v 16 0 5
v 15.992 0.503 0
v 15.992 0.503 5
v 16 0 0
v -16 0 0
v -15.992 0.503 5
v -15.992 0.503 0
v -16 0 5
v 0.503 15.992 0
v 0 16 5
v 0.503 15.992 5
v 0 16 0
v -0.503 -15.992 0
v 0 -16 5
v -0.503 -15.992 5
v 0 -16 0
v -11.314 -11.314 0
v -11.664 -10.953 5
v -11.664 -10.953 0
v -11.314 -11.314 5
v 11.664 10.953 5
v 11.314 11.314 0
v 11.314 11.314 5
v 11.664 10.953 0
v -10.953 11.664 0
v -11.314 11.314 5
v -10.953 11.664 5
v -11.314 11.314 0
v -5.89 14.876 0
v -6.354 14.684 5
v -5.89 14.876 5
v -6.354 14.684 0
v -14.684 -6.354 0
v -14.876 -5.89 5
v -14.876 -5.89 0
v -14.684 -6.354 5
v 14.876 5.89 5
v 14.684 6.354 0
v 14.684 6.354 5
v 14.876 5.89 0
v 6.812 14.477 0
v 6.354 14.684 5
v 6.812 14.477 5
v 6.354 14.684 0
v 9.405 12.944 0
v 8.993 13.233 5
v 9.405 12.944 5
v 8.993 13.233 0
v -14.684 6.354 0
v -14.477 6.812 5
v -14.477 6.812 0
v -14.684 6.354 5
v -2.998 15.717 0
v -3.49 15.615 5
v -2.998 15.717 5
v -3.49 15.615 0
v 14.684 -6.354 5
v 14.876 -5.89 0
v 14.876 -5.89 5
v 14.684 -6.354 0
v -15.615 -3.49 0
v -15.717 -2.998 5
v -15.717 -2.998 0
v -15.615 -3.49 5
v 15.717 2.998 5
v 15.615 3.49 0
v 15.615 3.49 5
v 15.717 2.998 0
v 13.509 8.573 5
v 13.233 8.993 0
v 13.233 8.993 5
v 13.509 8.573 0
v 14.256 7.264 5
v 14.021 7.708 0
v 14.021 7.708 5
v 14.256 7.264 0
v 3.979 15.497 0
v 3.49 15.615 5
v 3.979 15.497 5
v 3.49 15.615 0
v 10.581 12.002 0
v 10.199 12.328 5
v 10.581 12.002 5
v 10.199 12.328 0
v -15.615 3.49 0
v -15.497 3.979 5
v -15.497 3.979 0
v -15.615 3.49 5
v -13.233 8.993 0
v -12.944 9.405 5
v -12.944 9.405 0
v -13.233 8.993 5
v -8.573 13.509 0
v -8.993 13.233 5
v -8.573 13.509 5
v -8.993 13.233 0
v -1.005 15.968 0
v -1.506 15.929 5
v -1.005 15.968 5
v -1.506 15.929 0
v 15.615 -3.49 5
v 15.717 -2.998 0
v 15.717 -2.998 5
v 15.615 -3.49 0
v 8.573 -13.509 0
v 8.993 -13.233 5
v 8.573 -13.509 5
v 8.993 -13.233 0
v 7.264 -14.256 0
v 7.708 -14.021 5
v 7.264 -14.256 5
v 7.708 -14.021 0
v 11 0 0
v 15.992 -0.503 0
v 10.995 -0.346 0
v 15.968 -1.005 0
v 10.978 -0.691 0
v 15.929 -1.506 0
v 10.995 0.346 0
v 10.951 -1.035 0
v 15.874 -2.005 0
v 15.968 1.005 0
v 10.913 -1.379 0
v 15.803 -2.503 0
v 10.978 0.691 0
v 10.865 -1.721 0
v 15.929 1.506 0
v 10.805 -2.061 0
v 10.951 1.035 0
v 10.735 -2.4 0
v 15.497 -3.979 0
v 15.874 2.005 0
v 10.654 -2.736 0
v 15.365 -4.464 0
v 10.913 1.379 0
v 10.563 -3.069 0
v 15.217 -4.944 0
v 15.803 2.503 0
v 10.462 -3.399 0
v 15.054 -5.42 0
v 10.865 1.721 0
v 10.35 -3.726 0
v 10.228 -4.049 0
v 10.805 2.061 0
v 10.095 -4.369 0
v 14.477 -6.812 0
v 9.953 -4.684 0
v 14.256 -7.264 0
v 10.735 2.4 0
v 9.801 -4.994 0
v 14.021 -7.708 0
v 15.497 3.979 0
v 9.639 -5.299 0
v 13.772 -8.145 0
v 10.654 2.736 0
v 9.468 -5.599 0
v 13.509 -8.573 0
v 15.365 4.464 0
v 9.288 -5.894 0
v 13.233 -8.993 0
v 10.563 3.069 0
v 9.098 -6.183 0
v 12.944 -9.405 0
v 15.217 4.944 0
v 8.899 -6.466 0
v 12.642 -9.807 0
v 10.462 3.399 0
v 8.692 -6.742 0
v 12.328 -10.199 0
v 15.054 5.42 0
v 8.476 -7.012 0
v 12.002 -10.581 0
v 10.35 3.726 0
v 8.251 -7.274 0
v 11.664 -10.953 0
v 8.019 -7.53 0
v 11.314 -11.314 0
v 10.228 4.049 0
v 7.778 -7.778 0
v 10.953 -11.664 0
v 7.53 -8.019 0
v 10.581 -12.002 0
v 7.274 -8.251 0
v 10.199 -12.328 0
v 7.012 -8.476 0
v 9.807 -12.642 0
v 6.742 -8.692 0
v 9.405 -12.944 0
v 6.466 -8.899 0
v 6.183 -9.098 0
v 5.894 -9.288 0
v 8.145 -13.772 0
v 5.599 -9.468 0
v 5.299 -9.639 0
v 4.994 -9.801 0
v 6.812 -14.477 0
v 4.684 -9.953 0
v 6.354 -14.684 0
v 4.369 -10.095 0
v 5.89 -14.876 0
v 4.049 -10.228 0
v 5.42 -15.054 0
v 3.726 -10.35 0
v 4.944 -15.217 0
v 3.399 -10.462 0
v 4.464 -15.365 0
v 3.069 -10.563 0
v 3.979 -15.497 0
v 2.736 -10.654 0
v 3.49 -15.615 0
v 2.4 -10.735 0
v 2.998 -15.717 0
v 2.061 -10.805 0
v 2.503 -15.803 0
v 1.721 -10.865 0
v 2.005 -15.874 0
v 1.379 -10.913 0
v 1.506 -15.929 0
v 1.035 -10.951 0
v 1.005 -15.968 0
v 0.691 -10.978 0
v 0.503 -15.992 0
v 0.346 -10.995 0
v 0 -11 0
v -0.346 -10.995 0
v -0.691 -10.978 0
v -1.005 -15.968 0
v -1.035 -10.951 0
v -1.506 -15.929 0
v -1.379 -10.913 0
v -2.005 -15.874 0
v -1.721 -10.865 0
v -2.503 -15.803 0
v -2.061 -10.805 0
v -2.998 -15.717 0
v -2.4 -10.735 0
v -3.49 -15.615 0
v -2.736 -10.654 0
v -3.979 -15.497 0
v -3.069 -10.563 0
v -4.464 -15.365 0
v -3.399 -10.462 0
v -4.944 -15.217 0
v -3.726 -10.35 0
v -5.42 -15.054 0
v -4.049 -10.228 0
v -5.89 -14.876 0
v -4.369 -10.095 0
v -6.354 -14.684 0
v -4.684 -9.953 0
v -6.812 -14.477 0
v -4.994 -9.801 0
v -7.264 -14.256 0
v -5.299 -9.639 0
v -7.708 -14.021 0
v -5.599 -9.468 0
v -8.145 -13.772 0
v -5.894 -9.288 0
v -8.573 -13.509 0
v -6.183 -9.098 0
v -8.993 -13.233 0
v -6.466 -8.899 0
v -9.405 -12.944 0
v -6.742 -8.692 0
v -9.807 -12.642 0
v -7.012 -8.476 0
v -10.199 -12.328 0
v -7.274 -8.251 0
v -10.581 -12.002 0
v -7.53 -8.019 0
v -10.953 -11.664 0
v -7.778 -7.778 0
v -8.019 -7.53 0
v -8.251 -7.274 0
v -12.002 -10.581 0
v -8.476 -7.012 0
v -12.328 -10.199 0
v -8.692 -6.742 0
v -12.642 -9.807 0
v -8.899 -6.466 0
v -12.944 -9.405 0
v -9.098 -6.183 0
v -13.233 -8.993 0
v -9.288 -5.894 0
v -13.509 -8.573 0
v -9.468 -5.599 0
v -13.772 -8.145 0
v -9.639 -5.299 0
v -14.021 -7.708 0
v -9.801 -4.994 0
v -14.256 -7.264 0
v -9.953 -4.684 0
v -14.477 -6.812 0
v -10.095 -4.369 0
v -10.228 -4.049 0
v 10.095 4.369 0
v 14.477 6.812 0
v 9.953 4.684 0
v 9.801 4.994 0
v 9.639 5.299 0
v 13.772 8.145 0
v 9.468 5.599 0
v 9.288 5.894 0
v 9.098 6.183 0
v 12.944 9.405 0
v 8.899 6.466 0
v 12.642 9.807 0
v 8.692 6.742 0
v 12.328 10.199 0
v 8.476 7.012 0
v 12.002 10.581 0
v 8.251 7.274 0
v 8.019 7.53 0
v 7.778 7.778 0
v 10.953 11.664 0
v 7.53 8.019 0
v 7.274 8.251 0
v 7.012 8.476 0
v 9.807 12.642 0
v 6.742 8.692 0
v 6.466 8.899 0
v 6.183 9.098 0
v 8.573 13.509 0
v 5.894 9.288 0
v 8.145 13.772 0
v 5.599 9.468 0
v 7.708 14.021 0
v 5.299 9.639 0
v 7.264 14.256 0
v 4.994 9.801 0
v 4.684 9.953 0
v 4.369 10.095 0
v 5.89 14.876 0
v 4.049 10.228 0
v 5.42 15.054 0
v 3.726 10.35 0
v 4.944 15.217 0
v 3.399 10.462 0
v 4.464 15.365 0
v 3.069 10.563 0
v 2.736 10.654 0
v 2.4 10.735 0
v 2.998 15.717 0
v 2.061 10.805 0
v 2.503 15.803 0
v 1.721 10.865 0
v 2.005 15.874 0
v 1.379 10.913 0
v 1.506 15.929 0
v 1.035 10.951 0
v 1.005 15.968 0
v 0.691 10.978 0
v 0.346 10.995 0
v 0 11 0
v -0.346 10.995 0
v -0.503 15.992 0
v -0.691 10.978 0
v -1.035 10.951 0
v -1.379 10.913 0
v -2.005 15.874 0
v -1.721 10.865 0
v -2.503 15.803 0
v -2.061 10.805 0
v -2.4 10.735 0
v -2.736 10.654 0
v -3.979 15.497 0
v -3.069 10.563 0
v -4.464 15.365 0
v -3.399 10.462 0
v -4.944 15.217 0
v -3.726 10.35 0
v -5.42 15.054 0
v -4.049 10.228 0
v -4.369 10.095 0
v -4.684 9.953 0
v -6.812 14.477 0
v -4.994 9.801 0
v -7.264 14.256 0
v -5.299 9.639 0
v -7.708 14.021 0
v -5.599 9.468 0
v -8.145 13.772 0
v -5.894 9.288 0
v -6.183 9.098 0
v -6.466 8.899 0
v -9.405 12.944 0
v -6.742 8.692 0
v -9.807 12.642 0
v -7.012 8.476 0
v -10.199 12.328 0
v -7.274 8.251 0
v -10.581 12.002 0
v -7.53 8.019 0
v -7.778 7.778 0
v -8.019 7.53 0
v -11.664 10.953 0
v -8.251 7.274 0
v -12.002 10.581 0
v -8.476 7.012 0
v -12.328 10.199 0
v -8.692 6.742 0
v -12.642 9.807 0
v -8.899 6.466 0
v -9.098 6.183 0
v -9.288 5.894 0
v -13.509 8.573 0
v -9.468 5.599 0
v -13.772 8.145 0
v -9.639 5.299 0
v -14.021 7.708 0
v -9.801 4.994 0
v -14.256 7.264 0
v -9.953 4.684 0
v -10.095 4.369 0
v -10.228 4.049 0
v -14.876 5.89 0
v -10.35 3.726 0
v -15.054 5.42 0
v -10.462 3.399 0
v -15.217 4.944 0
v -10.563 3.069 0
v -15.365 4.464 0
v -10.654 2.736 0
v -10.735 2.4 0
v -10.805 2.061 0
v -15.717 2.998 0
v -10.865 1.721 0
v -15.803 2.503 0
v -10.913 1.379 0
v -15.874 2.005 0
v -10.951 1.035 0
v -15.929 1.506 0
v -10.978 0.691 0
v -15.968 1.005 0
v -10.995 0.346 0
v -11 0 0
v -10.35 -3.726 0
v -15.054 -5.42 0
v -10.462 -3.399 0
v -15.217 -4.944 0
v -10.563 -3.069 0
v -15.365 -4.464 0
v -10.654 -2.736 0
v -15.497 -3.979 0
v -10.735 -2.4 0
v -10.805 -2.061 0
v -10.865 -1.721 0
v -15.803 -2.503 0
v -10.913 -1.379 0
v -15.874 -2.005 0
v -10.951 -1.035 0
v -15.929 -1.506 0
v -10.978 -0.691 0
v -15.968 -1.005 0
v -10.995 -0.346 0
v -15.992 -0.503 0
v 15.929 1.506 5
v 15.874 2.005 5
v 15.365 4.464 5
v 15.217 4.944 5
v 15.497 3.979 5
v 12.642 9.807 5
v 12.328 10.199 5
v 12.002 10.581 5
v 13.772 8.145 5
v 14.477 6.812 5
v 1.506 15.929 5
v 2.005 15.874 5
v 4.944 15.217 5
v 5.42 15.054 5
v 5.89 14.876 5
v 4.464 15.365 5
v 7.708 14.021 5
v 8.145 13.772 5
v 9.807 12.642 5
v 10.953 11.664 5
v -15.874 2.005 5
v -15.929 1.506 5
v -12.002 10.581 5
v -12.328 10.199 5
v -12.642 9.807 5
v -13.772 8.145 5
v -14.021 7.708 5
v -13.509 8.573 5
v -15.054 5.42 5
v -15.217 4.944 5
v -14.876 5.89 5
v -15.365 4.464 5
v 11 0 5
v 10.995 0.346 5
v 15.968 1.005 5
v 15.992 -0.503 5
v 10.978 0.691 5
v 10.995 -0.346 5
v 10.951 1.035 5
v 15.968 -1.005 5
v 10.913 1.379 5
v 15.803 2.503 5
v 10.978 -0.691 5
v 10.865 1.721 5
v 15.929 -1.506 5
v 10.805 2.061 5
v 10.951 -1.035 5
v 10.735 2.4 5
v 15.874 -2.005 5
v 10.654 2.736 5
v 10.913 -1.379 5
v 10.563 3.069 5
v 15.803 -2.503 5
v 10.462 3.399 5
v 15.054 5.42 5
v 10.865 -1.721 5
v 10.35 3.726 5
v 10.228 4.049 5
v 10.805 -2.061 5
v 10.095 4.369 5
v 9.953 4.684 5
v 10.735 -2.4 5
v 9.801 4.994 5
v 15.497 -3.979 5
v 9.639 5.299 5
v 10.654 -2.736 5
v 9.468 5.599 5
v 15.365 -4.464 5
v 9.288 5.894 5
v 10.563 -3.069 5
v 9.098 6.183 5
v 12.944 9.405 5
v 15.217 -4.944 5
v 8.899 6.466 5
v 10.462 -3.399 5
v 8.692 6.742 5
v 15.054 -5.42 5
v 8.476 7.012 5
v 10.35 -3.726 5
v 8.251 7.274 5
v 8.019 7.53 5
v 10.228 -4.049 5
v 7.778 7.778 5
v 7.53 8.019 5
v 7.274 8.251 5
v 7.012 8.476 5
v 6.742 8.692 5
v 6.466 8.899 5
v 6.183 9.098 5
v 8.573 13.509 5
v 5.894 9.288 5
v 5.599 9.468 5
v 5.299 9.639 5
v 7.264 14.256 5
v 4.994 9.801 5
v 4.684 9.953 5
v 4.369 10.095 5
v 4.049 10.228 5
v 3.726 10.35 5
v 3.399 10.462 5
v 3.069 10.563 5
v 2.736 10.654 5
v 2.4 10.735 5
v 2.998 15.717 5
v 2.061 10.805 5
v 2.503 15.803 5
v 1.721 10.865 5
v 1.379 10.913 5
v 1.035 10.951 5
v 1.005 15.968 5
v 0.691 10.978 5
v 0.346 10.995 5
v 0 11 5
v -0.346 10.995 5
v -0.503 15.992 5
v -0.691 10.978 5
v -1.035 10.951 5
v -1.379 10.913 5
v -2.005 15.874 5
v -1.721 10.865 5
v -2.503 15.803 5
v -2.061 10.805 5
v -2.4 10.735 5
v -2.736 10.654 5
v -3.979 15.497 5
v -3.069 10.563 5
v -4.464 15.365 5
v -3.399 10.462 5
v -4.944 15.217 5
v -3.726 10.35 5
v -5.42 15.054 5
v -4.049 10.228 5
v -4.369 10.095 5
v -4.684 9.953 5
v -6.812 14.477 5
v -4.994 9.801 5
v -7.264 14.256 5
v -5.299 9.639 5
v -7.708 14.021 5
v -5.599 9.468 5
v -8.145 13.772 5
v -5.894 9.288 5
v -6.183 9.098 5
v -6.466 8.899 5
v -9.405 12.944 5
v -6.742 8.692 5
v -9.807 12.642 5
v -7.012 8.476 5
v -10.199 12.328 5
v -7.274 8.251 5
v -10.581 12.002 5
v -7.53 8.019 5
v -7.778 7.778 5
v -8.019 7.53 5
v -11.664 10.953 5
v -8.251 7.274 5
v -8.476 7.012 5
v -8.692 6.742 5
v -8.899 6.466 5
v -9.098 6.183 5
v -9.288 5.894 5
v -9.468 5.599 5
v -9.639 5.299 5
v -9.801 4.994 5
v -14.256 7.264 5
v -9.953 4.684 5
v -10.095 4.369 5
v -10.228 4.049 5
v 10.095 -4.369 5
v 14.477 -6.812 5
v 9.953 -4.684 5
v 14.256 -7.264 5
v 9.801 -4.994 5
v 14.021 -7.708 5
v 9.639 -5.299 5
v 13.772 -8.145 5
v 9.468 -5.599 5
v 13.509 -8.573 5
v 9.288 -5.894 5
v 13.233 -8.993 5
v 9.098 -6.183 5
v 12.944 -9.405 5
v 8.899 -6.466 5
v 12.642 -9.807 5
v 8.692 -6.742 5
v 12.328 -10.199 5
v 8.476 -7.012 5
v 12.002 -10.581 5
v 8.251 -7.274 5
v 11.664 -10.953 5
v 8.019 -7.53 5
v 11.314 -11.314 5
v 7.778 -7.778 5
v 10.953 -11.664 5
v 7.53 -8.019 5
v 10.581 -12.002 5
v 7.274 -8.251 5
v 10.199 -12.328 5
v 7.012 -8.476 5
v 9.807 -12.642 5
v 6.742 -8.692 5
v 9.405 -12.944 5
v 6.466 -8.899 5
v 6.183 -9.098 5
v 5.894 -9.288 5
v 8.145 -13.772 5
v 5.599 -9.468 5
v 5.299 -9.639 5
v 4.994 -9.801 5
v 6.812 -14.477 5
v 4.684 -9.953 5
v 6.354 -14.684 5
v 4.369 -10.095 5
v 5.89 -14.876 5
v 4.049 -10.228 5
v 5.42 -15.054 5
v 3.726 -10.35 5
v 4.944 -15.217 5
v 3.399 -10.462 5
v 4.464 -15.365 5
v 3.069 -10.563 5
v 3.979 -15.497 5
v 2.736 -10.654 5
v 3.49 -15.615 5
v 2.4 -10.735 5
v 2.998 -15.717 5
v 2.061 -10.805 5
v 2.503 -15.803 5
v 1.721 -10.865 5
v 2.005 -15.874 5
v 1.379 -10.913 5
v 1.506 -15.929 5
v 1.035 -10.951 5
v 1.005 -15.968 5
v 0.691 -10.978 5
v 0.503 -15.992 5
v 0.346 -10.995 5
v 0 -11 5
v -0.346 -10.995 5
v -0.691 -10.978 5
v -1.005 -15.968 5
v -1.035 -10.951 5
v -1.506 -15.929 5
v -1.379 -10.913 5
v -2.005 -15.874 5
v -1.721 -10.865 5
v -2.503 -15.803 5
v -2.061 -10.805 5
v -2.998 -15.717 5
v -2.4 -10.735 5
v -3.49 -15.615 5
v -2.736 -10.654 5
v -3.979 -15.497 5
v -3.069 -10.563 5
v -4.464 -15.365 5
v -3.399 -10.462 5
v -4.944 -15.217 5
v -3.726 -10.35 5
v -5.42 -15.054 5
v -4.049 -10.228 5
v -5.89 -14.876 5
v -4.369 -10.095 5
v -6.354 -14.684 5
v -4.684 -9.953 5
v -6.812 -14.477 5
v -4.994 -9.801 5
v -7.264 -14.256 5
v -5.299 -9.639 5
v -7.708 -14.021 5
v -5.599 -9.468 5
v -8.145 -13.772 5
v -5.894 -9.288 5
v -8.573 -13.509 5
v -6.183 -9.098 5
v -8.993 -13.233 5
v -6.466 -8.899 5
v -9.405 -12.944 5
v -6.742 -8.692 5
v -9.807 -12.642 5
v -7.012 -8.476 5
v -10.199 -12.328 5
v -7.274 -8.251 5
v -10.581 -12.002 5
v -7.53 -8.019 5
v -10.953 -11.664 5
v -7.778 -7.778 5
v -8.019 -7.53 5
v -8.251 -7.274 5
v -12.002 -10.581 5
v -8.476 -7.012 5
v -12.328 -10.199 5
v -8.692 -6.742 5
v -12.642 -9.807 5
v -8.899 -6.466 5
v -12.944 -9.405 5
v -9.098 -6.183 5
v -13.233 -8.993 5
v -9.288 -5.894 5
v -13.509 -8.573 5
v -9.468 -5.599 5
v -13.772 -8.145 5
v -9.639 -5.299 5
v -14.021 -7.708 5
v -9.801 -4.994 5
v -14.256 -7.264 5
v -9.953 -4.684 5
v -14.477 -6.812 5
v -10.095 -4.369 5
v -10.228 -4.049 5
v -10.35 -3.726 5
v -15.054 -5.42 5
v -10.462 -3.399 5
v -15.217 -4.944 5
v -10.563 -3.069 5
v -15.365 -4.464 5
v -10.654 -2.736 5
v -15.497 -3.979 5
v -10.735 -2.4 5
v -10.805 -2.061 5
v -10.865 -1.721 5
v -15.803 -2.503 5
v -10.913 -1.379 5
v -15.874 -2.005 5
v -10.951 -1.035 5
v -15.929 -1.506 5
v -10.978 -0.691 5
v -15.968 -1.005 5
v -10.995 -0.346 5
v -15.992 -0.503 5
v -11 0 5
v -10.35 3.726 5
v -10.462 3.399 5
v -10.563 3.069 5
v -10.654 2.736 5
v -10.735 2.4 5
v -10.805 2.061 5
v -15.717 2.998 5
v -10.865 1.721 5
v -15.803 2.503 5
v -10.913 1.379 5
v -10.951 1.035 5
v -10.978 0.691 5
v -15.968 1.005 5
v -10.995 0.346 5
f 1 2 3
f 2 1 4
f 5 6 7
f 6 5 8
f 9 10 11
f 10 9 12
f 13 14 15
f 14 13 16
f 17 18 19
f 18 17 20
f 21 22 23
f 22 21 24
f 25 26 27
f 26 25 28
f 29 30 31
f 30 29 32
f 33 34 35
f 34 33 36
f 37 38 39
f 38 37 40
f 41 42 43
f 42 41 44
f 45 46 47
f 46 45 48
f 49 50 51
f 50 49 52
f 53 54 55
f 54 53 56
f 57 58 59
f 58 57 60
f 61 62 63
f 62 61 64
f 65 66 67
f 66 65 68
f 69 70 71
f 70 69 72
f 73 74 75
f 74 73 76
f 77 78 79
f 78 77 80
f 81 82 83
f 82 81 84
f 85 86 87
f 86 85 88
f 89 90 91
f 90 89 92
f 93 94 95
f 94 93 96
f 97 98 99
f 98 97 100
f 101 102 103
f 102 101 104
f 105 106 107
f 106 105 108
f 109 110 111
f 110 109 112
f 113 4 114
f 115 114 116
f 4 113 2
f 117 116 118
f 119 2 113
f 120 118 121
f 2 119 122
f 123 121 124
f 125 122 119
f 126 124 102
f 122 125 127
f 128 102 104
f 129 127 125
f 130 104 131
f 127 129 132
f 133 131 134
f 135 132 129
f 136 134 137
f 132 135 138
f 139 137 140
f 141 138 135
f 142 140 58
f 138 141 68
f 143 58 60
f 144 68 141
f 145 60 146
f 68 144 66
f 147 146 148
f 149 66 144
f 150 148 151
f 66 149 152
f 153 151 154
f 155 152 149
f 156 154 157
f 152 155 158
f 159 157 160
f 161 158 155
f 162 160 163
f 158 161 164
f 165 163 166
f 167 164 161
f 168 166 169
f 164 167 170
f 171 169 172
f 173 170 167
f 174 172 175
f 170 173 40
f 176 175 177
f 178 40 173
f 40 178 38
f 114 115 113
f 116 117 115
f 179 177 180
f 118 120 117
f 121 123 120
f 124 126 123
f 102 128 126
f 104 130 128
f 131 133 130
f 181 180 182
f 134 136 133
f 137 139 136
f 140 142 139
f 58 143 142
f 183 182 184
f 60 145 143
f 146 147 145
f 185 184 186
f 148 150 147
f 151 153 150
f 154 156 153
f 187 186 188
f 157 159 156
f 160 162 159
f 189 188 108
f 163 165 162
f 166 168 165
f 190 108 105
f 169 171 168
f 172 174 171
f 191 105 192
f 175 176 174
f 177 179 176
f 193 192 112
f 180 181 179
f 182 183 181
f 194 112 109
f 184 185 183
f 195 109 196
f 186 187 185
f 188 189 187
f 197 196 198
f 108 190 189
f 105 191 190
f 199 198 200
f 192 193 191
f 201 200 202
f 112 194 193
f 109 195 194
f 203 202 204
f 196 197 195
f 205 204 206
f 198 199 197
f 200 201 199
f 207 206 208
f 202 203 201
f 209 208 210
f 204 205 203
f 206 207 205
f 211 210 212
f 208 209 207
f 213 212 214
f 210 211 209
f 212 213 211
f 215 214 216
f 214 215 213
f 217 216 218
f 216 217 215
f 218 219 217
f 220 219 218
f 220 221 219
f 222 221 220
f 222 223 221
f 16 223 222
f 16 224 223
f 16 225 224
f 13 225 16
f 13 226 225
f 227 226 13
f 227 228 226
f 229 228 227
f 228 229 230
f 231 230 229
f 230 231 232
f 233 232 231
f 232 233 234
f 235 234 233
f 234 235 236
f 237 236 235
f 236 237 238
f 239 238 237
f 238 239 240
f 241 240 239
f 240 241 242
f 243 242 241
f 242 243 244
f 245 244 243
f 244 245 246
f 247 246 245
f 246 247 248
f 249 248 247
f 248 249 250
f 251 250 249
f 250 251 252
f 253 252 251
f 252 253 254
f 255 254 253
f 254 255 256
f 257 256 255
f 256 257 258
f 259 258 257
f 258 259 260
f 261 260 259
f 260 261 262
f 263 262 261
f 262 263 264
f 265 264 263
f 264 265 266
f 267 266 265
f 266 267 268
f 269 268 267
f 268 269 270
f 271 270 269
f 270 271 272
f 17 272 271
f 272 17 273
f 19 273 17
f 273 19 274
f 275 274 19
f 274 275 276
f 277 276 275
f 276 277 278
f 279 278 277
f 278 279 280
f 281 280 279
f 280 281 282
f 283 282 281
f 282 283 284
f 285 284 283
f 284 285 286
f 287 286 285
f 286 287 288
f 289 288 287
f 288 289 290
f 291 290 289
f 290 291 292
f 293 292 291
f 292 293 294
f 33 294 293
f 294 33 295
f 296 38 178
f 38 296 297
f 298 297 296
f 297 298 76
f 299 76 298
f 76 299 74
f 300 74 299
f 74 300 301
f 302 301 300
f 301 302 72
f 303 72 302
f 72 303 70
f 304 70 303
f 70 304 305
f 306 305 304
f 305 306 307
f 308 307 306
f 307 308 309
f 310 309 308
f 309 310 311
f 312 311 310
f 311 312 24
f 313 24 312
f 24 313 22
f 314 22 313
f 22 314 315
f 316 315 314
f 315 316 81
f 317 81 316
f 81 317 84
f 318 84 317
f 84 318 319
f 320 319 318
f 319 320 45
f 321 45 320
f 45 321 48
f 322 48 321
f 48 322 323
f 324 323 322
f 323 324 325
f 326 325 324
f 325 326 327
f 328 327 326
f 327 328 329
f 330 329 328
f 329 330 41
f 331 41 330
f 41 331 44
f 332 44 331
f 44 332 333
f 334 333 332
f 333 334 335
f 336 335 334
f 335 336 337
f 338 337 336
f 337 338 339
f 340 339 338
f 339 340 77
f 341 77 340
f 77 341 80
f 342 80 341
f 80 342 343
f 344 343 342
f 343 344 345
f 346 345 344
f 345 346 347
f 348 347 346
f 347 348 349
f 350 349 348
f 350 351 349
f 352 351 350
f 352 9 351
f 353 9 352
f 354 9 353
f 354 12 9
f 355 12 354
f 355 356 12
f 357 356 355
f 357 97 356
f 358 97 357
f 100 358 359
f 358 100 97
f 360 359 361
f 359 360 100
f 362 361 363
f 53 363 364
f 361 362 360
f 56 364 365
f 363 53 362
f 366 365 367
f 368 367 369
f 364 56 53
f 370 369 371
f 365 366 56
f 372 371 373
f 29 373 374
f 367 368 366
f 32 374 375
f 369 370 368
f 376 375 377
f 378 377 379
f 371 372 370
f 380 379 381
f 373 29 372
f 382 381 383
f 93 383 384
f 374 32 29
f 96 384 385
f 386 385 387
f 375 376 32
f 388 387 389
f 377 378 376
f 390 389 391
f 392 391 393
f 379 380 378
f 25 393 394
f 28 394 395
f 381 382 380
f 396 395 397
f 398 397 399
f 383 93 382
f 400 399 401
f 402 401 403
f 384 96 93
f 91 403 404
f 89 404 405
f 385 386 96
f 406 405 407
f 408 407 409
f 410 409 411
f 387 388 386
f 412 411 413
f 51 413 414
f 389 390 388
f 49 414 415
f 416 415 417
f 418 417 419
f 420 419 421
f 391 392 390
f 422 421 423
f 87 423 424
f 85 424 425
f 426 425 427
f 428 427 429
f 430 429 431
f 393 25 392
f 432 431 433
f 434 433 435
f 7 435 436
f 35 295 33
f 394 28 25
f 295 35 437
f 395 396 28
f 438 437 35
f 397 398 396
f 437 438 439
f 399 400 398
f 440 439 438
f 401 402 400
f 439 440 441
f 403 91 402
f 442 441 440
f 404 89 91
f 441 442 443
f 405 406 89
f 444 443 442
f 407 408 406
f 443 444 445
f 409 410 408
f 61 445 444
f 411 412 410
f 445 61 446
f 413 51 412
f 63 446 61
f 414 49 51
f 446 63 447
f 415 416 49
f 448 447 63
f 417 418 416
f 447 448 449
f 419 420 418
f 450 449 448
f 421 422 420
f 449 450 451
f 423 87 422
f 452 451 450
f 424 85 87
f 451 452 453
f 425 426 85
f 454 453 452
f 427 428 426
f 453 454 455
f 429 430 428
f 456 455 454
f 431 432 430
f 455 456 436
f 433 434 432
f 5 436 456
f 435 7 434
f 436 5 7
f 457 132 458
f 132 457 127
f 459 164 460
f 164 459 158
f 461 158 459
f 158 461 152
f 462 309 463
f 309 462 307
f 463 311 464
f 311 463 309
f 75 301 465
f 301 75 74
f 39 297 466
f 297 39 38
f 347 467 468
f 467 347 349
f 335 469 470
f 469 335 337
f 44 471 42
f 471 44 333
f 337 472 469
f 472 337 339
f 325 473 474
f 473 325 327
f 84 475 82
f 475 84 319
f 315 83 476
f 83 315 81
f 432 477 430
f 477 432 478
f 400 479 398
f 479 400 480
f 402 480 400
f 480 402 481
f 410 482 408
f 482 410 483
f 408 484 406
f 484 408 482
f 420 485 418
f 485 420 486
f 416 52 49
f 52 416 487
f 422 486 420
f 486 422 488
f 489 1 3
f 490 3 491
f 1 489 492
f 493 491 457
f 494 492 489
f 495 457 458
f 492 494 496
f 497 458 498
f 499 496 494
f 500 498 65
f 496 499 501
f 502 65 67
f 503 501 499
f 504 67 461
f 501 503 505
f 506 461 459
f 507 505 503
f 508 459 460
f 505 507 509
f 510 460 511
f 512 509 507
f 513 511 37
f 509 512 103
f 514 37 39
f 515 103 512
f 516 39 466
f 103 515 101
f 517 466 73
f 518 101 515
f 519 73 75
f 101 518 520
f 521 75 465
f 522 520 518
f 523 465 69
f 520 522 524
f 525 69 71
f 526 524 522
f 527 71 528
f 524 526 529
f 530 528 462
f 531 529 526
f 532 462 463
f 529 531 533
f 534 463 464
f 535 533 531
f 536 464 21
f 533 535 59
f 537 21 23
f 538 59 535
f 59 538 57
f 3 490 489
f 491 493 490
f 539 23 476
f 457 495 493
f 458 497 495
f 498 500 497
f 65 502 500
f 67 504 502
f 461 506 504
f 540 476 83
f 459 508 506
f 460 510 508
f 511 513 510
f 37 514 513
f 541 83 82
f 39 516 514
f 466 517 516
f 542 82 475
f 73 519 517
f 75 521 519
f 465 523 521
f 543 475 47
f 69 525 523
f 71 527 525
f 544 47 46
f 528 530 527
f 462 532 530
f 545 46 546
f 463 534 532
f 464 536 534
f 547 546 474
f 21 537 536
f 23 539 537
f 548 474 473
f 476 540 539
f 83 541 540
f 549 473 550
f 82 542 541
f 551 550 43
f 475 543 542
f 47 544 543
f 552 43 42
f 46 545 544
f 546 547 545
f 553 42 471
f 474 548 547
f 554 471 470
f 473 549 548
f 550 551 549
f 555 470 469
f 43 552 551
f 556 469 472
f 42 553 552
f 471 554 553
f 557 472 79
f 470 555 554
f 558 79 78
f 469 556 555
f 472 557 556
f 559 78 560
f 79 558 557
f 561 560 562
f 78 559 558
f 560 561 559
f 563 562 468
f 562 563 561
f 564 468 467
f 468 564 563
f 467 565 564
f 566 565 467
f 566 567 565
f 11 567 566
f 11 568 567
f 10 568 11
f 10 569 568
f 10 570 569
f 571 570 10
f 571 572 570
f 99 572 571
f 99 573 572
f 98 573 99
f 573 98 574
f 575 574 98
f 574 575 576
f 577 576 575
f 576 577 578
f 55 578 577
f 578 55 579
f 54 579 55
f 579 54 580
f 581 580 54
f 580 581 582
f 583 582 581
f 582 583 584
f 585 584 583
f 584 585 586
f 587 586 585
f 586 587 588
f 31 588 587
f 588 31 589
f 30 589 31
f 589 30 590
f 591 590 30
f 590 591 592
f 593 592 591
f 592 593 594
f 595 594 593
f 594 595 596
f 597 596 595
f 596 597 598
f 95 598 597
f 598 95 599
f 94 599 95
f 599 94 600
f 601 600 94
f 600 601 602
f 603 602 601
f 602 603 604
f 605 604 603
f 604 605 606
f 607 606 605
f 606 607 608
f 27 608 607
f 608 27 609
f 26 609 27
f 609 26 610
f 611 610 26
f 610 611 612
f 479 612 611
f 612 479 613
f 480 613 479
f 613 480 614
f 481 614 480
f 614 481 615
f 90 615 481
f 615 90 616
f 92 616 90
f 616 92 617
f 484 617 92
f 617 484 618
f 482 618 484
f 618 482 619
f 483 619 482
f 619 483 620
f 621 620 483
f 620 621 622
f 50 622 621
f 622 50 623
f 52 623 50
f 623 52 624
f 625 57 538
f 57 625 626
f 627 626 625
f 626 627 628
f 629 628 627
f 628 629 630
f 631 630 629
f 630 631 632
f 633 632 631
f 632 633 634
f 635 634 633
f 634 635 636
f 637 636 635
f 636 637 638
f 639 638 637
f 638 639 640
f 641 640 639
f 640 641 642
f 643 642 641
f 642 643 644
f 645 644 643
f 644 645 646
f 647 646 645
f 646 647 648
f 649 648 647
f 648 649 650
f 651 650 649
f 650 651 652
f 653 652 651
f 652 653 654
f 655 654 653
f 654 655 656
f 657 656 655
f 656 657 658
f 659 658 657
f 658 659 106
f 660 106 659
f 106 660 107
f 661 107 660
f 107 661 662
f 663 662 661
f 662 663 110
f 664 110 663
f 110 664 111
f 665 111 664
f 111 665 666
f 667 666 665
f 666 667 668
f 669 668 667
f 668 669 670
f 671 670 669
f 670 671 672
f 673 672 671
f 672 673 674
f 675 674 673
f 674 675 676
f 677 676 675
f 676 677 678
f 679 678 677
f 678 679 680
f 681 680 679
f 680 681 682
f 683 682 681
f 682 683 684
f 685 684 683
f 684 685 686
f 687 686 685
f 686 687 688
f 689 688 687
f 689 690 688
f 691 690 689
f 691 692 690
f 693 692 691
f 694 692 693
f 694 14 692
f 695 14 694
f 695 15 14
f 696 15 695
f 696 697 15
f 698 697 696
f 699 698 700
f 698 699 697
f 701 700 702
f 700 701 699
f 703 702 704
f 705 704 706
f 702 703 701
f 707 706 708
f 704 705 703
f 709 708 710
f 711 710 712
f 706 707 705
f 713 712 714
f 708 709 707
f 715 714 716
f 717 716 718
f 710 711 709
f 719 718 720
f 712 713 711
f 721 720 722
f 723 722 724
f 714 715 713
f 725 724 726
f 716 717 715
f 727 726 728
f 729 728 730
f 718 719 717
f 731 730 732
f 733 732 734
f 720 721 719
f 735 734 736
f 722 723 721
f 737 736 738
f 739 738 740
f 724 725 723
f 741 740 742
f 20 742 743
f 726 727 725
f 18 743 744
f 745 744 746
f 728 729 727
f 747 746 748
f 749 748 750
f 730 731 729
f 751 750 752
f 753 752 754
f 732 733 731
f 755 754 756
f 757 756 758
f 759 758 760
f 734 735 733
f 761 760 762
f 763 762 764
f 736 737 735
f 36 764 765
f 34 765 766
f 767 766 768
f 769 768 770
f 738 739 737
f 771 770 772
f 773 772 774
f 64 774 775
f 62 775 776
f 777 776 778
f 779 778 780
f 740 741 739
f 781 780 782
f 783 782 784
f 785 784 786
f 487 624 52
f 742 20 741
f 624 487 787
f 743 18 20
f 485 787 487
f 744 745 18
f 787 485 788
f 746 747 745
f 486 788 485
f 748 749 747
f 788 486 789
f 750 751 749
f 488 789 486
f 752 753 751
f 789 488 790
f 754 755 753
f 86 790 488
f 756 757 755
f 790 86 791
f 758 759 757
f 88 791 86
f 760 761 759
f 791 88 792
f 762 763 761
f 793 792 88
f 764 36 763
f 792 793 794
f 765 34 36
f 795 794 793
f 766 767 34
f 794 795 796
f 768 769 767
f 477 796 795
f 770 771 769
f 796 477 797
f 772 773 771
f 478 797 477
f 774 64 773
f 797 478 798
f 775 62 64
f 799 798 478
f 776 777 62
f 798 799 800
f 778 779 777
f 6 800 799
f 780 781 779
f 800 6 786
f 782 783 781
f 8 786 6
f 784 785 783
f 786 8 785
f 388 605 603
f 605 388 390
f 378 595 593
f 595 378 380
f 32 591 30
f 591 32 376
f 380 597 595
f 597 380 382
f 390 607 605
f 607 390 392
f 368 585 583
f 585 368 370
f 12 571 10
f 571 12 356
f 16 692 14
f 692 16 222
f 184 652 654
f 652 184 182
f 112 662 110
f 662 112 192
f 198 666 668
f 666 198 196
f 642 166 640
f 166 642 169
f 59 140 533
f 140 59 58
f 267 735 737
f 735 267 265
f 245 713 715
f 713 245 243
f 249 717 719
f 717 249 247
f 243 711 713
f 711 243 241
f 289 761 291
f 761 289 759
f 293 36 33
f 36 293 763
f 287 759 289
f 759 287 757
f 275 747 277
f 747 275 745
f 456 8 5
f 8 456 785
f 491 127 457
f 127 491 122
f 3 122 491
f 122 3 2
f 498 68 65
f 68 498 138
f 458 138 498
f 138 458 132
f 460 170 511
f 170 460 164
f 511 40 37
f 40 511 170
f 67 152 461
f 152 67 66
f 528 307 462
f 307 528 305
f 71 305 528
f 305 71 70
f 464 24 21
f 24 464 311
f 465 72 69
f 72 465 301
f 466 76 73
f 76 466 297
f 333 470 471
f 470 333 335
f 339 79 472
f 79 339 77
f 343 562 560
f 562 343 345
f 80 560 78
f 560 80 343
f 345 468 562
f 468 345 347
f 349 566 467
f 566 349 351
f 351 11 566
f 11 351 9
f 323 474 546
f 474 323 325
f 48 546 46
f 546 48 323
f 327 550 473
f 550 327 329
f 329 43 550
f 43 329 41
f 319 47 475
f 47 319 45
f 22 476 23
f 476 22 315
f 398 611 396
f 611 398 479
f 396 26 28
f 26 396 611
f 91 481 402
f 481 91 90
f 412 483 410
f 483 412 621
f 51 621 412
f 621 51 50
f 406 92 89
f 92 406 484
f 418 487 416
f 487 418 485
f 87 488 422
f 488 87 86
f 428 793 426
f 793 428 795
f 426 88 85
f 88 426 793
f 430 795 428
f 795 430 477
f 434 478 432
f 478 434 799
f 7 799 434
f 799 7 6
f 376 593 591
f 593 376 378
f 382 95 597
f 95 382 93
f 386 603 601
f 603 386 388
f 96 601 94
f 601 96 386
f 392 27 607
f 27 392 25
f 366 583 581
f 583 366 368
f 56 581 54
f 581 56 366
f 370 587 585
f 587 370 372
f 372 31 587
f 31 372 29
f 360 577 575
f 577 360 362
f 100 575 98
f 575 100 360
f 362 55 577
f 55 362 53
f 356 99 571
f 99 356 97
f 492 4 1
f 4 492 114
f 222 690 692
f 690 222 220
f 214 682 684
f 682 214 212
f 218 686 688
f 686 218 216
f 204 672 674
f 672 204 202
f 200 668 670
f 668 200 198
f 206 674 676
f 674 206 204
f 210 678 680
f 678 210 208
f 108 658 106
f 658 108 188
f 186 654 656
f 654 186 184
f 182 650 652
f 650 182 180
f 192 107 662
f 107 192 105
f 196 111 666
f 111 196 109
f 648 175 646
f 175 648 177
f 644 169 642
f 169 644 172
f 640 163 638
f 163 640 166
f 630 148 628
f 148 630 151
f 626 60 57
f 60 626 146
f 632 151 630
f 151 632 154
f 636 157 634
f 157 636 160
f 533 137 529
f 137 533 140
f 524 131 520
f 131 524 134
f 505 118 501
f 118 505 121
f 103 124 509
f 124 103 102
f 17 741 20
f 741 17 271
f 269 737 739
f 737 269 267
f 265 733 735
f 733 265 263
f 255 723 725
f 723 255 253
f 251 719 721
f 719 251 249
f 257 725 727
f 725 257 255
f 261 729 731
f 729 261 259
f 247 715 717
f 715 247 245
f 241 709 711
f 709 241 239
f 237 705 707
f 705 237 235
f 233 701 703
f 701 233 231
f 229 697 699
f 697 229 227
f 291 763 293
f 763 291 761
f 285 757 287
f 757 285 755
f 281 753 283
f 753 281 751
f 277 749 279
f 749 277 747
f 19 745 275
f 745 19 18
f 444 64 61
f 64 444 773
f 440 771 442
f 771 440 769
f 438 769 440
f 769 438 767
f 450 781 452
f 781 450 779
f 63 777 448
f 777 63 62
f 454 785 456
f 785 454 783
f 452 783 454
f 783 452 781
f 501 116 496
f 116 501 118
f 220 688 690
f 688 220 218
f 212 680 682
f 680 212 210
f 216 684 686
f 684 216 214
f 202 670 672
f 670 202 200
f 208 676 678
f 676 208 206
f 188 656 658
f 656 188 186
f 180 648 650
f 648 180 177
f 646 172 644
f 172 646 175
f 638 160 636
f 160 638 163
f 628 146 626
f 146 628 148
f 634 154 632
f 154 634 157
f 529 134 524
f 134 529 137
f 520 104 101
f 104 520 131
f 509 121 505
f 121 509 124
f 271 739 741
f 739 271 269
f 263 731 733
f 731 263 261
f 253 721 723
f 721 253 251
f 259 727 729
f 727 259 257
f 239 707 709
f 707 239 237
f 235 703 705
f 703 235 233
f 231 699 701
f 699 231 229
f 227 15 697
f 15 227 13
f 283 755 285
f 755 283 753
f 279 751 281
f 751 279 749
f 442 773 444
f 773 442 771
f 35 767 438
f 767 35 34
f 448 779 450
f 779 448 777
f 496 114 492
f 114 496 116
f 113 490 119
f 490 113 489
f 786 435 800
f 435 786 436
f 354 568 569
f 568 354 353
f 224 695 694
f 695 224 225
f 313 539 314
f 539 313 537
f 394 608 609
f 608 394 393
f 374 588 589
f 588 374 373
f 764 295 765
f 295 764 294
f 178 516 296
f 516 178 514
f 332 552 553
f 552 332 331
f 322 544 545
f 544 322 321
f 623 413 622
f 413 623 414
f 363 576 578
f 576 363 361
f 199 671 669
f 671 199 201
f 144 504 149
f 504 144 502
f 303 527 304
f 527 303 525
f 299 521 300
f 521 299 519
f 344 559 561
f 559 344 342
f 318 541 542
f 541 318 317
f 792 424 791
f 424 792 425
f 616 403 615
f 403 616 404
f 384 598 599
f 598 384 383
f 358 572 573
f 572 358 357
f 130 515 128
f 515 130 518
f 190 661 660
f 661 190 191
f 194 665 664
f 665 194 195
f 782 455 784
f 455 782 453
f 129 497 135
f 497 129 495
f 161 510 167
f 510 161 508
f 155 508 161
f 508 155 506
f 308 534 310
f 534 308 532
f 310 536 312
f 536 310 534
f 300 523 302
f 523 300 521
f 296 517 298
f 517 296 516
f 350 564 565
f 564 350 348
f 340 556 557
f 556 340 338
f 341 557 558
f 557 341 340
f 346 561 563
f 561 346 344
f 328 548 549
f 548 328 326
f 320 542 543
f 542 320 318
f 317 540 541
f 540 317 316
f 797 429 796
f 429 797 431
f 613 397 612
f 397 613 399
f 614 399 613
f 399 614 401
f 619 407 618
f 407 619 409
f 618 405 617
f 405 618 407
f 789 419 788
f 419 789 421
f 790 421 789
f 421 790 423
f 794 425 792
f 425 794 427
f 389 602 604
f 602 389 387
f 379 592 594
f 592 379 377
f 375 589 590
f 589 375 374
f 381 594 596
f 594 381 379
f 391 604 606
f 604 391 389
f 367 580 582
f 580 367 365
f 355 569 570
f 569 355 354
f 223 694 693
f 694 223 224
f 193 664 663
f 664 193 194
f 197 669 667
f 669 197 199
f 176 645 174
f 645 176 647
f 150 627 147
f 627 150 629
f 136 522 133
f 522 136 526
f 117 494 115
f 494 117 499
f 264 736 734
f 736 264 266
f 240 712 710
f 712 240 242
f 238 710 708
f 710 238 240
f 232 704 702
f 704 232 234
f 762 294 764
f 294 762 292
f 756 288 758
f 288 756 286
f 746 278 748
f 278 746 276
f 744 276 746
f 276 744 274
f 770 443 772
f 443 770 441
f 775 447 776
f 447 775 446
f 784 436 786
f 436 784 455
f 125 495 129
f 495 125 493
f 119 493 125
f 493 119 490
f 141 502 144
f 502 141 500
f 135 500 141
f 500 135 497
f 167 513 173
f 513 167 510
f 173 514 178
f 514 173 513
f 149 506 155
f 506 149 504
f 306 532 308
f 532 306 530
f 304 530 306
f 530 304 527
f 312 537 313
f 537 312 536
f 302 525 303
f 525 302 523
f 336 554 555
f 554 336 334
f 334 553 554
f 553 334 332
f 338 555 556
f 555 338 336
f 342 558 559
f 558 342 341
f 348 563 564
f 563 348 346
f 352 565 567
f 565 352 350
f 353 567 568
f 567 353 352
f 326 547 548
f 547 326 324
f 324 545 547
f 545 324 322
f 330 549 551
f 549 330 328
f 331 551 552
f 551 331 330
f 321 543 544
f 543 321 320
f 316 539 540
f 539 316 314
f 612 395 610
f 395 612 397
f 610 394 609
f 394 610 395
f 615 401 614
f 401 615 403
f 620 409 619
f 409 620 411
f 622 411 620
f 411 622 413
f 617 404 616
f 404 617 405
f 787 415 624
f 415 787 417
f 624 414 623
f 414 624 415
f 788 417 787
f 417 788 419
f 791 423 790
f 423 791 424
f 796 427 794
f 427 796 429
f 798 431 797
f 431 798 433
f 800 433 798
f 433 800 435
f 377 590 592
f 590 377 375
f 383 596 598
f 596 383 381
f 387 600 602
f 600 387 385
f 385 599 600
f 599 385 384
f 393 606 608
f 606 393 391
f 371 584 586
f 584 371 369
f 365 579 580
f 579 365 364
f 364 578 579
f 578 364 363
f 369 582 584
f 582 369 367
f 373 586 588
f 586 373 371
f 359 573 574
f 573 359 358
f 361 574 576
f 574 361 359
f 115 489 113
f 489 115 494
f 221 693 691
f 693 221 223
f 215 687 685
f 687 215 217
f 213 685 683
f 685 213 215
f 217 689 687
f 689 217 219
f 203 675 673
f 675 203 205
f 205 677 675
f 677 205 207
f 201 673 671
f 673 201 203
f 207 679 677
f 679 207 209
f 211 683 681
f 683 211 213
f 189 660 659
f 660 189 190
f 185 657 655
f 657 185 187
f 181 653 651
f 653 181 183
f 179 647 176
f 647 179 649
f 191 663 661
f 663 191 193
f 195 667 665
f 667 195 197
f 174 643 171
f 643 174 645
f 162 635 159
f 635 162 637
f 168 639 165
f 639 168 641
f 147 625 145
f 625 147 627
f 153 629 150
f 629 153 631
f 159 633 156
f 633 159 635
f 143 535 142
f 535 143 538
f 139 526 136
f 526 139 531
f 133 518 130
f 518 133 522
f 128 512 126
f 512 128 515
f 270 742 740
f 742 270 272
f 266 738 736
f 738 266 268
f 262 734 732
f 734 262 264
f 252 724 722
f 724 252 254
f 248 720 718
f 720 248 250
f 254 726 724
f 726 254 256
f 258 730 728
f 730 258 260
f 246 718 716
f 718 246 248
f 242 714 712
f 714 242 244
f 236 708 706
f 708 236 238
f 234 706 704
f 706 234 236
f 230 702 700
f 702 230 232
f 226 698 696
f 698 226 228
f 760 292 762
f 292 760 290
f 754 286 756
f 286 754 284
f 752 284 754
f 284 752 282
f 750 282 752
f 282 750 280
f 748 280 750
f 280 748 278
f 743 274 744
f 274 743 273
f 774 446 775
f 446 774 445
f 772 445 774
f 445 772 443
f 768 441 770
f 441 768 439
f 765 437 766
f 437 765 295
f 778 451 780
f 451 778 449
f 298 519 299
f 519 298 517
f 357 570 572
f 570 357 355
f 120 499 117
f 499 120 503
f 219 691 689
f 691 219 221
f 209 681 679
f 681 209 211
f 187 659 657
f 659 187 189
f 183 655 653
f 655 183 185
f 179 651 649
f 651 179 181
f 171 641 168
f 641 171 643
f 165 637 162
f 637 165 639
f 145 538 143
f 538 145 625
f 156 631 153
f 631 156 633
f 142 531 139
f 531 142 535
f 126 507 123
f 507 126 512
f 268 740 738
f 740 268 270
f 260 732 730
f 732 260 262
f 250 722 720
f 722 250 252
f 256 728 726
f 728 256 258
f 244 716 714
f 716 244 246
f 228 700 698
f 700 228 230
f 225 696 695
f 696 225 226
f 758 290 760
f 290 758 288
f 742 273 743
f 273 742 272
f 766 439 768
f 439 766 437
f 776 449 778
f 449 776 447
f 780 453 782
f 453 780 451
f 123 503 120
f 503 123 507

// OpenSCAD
$fn=200;
difference(){
    cylinder(r=16,h=5);
    cylinder(r=11,h=5);
}
